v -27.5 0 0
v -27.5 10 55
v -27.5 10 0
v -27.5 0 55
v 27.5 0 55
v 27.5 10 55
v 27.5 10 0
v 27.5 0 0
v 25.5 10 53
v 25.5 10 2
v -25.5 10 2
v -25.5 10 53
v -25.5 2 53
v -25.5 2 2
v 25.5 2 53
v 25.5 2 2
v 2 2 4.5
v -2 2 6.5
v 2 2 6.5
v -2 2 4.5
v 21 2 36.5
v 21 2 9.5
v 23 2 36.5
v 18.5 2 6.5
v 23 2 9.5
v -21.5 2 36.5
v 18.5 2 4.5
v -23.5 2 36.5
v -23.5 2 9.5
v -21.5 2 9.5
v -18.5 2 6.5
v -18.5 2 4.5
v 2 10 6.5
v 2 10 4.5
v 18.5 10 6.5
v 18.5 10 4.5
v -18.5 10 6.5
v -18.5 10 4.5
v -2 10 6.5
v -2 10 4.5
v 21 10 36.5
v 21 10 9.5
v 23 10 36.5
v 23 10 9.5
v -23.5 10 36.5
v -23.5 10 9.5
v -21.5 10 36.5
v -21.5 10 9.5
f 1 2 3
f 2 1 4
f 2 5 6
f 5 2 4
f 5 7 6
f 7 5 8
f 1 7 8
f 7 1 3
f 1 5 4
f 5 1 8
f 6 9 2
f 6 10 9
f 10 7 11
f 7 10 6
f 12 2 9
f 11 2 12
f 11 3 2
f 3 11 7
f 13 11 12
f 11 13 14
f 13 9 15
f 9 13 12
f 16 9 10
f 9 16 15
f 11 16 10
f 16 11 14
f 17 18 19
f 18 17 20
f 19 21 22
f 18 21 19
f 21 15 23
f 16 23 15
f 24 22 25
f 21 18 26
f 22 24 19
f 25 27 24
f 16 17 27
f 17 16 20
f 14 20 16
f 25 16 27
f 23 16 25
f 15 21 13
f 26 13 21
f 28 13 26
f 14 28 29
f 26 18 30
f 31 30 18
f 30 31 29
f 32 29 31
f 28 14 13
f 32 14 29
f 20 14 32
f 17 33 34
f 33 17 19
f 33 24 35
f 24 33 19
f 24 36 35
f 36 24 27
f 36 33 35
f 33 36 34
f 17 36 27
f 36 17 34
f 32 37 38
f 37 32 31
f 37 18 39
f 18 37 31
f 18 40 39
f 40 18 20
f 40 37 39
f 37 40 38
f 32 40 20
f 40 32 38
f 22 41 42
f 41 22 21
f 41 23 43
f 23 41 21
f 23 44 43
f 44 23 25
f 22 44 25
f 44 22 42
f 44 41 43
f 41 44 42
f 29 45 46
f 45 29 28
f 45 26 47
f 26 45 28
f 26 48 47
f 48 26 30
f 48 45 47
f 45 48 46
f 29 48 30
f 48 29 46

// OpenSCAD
// Definition size of housing
// **************************

sizex = 51;
sizey = 51;
depth = 10;
thick = 2;
gap=2.5;

//Definition of circle angular resolution
resol        = 36;  


union () {
 difference () {
 
   // main block
   translate ([-sizex/2-thick,0,0]) {
     cube ( [sizex+thick*2, depth, sizey+thick*2] );
   };
     
   //remove inner
   translate ([-sizex/2,thick,thick]) {
   cube ( [sizex, depth, sizey]);
   };

         
 };      
 
 //add support fins
   translate ([2,thick,thick+gap]) {
   cube ( [sizex/2-thick*2-5, depth-2 , thick]);
   };

   translate ([+2 -sizex/2 +5 ,thick,thick+gap]) {
   cube ( [sizex/2-thick*2-5, depth-2 , thick]);
   };

   translate ([sizex/2-gap-thick,thick,thick+gap+5]) {
   cube ( [thick, depth-2 , sizex-thick*2 - 20]);
   };

   translate ([-(sizex/2-thick),thick,thick+gap+5]) {
   cube ( [thick, depth-2 , sizex-thick*2 - 20]);
   };
 
}
